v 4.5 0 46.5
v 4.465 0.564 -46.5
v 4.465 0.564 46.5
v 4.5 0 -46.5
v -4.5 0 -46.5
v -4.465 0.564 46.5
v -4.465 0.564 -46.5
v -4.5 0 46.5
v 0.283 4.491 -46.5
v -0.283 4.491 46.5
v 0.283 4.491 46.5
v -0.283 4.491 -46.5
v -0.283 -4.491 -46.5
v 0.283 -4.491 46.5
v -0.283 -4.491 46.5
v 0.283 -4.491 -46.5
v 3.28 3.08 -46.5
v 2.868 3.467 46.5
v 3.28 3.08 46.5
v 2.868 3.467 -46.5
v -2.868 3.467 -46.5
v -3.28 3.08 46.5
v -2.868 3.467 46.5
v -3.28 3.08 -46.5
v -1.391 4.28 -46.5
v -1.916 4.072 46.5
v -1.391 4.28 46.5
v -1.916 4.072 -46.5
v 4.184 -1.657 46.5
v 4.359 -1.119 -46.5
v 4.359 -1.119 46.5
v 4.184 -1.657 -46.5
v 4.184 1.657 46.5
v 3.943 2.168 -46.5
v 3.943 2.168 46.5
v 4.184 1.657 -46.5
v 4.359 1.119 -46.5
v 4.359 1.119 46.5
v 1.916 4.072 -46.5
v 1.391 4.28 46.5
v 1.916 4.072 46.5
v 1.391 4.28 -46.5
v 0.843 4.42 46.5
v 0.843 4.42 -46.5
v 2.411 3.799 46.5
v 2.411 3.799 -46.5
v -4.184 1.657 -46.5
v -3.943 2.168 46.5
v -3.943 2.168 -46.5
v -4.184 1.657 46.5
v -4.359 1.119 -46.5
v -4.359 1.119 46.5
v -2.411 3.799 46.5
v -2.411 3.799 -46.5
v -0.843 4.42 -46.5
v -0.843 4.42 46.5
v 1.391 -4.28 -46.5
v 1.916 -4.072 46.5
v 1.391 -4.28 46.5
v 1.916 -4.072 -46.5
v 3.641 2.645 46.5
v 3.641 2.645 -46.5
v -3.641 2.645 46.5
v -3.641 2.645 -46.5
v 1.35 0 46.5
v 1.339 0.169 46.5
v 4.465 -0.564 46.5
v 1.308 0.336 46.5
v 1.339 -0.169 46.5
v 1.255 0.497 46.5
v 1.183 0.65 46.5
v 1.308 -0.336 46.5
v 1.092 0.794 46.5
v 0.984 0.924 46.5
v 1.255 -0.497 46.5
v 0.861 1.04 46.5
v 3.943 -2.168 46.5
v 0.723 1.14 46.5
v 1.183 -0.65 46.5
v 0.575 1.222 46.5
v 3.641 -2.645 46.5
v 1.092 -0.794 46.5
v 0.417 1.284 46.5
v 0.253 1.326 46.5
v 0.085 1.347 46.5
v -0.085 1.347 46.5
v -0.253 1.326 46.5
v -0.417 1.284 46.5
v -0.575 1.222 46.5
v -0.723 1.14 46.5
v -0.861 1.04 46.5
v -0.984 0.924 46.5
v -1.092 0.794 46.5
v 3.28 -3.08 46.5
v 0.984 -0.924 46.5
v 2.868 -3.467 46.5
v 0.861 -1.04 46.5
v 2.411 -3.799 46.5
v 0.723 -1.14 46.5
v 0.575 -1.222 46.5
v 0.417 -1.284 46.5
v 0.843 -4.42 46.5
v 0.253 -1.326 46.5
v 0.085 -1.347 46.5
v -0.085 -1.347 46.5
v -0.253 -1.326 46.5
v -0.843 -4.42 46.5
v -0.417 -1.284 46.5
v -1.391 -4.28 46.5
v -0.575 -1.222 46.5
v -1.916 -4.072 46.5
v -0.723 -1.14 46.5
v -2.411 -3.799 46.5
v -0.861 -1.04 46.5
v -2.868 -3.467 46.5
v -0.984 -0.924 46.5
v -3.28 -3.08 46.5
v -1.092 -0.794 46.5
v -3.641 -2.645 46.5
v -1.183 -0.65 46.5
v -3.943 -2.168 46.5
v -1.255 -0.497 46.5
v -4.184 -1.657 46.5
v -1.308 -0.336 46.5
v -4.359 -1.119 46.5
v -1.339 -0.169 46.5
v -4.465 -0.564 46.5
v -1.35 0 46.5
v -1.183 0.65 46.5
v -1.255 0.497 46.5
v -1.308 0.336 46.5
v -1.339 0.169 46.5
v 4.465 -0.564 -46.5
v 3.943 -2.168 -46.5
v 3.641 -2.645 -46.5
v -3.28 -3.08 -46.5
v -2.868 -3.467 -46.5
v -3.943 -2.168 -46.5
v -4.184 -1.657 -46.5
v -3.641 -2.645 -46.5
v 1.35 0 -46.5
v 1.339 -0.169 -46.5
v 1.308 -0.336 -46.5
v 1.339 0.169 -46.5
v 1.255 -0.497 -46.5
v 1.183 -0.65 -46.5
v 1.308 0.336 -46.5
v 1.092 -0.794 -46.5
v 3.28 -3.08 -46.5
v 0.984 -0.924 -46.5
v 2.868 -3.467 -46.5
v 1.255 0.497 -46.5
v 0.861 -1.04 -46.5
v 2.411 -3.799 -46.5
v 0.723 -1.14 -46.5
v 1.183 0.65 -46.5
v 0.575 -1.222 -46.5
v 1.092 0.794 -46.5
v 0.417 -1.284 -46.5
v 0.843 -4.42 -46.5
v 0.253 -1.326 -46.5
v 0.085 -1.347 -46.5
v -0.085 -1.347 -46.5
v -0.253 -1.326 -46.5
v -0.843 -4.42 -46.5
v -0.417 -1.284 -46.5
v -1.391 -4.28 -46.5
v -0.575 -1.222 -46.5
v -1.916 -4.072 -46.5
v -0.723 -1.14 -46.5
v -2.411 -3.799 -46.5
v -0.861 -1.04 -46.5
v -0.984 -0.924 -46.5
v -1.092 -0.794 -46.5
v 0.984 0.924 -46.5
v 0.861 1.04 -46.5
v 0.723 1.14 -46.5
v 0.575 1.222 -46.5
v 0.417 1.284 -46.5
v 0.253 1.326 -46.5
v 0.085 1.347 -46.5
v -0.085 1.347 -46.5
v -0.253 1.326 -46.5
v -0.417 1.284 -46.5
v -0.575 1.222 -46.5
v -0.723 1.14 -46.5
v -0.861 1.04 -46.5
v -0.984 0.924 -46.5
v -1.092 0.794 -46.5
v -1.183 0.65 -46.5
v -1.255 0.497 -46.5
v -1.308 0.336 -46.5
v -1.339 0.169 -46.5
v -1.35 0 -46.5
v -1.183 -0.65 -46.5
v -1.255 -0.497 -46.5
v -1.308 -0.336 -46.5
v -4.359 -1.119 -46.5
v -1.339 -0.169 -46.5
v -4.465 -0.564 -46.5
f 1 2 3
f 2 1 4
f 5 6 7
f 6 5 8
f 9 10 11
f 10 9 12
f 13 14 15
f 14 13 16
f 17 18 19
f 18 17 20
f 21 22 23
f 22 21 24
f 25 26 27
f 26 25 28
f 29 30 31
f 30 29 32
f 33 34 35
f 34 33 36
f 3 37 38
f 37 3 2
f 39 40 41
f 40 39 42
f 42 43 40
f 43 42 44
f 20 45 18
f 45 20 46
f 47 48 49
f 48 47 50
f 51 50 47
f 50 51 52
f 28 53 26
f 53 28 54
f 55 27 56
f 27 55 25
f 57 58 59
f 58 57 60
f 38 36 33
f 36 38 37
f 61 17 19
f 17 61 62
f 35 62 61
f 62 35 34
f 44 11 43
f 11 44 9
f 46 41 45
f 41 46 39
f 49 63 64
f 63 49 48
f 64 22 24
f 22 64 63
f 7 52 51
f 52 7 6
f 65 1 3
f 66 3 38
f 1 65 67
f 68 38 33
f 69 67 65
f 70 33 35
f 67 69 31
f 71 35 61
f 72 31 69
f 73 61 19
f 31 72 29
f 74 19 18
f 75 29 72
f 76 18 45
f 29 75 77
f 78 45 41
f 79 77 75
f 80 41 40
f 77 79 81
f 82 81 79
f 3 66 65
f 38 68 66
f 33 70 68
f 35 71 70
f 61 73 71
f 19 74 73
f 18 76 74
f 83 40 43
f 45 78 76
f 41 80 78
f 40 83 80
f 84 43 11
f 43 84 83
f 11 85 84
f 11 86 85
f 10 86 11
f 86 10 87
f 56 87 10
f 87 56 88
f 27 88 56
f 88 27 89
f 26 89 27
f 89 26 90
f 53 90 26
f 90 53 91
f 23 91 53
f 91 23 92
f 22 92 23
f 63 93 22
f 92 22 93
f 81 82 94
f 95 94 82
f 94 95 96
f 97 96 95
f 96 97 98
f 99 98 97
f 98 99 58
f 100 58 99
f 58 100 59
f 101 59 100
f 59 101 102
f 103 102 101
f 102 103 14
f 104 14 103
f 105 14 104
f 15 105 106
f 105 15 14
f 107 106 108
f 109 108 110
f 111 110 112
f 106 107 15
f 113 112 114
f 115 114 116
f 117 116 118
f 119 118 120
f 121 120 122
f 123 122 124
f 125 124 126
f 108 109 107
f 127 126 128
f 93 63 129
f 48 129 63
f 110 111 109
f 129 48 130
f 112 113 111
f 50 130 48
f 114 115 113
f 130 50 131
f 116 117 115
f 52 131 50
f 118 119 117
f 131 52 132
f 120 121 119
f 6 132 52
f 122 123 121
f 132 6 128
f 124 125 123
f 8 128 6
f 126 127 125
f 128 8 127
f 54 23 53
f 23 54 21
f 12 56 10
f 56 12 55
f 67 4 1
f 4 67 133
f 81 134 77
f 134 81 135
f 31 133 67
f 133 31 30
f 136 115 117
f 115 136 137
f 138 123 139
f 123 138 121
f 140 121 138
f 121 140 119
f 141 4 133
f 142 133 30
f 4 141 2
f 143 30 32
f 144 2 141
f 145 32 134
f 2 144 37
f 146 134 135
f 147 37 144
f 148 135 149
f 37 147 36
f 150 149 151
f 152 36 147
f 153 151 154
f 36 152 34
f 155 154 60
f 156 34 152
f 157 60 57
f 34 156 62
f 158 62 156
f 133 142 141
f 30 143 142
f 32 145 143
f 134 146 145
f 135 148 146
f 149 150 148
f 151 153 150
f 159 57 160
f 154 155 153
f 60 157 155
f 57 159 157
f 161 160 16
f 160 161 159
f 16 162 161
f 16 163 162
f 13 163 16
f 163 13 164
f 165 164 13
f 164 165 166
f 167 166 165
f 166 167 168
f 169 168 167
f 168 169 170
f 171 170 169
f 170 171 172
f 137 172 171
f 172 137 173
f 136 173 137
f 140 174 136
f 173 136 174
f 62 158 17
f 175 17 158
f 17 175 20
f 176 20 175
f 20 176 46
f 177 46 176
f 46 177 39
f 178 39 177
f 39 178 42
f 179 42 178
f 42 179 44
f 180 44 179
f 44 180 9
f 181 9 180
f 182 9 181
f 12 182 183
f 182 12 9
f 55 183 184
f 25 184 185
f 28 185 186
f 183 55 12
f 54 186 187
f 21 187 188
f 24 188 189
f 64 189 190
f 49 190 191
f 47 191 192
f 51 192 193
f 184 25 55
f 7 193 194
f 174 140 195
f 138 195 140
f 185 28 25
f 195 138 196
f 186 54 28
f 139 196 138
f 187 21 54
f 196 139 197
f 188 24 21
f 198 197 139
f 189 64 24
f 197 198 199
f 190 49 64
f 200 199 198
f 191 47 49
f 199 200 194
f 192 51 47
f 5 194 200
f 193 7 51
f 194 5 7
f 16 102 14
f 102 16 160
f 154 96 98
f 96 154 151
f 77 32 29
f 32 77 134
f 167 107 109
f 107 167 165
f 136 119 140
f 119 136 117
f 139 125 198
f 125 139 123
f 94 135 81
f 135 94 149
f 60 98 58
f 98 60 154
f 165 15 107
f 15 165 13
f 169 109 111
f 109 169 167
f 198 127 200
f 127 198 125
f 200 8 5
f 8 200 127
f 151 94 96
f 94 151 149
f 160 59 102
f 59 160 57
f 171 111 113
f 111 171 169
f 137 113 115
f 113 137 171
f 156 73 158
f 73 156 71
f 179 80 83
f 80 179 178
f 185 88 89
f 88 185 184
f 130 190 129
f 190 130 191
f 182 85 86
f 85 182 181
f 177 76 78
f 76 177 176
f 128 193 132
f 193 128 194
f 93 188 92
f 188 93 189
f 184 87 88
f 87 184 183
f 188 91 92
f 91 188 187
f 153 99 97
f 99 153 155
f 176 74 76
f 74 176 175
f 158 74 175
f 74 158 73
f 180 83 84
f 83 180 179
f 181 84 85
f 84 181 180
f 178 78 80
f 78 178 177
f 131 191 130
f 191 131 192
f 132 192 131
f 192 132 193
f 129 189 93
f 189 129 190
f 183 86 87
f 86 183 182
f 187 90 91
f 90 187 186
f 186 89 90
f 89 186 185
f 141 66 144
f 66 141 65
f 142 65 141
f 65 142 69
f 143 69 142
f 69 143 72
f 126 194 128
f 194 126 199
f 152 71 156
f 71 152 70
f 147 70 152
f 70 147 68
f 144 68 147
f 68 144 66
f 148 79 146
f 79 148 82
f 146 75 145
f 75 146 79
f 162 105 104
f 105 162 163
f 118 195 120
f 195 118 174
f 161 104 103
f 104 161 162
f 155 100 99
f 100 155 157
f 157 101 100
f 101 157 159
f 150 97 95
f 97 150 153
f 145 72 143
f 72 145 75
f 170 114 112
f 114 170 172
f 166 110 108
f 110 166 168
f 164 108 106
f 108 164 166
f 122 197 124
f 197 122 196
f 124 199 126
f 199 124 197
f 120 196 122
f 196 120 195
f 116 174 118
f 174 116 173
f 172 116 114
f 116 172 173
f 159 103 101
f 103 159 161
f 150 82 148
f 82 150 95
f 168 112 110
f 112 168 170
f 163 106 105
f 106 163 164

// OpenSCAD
$fn = 50;


difference() {
	union() {
		translate(v = [0, 0, -46.5000000000]) {
			cylinder(h = 93, r = 4.5000000000);
		}
	}
	union() {
		translate(v = [0, 0, -100.0000000000]) {
			cylinder(h = 200, r = 1.3500000000);
		}
	}
}
